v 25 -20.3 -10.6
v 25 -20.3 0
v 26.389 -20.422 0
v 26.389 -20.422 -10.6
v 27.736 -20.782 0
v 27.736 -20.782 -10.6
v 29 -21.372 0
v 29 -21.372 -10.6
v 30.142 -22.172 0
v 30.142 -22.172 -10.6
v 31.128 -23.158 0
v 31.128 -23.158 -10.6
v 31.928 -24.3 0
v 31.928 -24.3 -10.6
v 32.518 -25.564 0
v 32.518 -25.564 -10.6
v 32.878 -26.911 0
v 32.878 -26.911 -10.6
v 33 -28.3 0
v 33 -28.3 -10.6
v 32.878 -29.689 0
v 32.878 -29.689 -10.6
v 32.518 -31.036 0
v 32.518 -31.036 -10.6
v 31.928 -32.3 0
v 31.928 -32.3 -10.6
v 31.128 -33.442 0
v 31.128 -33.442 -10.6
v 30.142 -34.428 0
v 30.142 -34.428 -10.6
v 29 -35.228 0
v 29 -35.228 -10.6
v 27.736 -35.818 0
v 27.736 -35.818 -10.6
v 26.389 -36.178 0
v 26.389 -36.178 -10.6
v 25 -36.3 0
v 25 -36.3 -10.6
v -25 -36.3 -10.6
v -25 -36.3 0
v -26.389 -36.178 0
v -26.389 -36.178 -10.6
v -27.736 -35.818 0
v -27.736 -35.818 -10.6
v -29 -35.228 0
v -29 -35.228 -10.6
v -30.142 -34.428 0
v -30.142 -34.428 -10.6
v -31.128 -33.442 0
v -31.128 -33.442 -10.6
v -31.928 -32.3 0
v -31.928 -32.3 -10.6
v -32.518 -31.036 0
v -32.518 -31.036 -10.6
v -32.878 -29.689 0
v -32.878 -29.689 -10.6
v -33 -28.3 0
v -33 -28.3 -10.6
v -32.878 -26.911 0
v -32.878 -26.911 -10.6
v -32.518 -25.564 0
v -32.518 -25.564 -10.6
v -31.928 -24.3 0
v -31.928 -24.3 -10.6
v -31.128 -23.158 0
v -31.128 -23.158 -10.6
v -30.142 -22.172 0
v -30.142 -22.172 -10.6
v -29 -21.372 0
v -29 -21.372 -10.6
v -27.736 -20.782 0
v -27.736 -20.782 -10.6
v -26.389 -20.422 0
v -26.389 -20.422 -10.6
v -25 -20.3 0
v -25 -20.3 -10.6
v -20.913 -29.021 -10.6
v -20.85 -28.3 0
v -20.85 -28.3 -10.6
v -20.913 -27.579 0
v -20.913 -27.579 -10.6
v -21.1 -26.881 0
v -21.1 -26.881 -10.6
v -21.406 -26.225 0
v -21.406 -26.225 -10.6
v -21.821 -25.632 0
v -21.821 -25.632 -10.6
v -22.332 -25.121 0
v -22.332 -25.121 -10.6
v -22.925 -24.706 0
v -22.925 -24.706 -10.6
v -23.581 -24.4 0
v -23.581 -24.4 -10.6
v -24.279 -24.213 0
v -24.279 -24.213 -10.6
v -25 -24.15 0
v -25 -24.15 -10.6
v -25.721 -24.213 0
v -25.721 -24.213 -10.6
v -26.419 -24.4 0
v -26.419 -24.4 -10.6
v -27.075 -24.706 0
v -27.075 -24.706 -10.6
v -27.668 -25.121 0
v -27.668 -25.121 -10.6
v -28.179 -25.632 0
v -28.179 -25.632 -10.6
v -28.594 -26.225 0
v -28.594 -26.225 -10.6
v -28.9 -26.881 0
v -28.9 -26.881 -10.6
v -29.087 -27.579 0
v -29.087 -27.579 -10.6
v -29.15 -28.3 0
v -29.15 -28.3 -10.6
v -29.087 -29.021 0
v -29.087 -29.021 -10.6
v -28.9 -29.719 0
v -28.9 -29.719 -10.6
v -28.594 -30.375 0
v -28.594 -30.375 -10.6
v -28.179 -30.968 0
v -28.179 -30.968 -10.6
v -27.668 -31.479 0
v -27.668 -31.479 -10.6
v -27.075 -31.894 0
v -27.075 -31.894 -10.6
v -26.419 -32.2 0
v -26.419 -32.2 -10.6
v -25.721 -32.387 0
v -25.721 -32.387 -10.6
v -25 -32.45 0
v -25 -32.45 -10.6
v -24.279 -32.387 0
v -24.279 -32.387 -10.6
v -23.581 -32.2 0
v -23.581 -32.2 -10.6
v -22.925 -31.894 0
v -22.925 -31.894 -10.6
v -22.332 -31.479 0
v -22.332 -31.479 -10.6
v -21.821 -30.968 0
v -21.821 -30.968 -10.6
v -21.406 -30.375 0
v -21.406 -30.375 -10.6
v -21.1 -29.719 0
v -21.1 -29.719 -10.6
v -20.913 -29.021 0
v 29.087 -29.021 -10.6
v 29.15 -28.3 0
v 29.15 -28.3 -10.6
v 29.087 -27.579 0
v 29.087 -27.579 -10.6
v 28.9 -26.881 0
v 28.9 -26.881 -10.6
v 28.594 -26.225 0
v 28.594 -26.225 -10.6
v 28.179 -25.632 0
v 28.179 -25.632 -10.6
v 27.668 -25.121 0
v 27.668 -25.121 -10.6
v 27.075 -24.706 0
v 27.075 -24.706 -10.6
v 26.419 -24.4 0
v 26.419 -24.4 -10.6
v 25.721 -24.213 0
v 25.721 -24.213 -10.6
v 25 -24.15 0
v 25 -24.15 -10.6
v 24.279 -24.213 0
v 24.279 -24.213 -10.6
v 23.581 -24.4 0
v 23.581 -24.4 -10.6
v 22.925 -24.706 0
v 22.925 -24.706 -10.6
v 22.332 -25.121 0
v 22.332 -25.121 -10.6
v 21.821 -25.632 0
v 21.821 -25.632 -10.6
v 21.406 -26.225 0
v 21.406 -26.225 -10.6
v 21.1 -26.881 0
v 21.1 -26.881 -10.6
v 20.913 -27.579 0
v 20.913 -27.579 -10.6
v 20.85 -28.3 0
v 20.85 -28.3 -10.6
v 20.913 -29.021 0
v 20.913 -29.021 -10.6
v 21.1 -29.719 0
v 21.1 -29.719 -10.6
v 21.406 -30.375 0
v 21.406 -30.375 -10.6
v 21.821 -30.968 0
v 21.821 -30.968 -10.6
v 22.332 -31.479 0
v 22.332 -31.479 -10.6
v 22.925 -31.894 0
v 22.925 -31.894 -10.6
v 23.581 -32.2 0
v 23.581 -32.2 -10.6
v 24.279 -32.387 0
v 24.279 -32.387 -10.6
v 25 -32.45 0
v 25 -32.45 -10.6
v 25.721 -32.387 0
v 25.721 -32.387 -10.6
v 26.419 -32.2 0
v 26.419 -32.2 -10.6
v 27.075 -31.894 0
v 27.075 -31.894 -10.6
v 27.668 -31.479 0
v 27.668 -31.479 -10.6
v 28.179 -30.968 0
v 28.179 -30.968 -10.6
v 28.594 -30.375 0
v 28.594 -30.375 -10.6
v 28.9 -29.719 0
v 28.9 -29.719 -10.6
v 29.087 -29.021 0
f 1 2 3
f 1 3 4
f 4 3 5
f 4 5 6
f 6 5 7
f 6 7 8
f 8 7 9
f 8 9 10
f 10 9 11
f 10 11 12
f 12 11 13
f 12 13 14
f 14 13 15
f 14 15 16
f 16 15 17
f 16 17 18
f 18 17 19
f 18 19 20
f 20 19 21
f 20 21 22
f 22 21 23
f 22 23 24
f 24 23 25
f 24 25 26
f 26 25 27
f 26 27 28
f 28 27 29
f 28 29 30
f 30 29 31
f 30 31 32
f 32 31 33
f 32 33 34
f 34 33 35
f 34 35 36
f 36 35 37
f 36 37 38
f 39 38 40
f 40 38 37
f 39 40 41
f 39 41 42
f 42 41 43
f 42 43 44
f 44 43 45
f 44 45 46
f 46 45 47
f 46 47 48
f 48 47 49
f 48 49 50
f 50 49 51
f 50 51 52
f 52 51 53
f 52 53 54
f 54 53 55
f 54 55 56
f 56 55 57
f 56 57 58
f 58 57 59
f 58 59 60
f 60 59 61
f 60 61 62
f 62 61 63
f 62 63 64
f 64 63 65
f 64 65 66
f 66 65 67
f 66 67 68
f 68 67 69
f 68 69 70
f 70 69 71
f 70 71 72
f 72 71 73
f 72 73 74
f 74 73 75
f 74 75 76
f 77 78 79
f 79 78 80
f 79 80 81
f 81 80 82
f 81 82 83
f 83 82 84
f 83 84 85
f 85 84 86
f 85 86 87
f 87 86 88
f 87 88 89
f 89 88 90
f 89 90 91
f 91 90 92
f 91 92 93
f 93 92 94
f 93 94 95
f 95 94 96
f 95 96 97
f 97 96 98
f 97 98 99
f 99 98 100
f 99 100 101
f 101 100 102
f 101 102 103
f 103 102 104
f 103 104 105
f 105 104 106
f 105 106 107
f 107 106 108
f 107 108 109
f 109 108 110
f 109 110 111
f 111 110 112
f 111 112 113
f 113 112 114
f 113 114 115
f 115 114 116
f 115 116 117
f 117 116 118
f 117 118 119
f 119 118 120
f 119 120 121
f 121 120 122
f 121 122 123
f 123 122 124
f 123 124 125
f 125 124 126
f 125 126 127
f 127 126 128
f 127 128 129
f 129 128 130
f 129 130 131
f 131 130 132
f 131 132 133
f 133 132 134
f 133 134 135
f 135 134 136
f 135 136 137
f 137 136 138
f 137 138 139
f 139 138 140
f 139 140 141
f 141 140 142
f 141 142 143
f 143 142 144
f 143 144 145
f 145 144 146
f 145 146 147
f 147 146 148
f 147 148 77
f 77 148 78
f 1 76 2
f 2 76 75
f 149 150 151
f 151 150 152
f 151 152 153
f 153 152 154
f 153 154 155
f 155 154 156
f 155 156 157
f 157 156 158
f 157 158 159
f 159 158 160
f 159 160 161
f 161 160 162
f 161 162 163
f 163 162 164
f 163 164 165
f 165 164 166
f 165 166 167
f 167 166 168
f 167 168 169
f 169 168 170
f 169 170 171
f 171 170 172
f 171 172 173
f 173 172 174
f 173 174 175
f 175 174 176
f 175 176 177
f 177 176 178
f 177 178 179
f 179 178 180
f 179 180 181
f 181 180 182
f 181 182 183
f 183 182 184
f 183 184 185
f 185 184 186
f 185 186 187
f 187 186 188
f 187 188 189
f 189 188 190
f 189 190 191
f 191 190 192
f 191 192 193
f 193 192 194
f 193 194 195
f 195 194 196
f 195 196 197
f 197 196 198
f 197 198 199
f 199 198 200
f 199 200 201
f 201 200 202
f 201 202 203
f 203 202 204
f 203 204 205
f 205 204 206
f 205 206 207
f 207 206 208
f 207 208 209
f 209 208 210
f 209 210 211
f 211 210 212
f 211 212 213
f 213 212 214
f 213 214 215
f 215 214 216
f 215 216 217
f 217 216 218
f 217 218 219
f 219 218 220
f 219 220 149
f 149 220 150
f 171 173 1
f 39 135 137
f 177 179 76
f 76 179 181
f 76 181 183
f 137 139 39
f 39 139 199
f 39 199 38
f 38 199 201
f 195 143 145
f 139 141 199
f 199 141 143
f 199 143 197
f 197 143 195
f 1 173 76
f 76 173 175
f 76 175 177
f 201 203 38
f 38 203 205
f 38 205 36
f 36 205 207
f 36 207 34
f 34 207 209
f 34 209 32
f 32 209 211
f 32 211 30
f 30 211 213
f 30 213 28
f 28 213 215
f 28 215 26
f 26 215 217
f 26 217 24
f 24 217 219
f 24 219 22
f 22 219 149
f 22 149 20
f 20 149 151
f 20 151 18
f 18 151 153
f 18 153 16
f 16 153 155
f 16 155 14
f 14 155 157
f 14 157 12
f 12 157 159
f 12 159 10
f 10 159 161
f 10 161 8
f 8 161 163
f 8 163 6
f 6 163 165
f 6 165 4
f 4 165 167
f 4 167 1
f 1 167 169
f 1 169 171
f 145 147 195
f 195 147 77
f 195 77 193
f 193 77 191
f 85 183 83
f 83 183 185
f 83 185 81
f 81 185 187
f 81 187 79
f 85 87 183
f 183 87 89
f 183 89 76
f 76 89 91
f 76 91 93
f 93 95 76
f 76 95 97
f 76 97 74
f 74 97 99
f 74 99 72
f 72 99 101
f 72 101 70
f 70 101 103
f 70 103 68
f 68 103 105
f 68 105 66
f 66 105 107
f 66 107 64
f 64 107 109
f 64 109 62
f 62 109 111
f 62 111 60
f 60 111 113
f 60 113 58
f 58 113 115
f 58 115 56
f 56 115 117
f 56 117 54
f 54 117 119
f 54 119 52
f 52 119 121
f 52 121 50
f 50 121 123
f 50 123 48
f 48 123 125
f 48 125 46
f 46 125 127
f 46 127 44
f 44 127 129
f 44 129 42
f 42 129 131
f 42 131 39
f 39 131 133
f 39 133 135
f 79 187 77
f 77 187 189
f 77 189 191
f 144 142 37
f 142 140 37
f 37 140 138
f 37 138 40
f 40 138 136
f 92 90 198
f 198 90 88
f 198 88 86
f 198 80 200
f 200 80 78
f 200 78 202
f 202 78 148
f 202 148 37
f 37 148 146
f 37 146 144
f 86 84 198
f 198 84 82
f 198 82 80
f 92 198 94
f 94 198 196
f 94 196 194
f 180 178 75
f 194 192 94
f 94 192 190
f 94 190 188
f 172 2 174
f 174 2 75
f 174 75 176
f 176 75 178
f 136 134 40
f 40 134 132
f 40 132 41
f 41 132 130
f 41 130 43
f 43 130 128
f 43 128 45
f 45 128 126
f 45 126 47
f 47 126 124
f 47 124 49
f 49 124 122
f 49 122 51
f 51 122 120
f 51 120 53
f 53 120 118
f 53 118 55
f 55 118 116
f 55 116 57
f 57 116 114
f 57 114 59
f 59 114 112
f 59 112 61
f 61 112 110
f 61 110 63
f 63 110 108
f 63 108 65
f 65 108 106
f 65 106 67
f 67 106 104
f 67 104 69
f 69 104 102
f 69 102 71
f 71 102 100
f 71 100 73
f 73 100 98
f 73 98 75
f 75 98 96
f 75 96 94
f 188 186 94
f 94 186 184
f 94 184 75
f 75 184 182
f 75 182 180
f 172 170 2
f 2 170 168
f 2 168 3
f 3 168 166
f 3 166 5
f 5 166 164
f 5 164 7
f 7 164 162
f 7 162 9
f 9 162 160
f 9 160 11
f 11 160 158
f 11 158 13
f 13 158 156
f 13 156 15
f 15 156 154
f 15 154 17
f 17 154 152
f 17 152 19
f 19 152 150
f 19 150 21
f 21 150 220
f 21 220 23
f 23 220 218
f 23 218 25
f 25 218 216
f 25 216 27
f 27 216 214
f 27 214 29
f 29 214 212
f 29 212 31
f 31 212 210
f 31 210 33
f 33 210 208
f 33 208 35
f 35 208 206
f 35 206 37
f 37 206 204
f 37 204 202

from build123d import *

# Parameters (mm, degrees)
SKETCH1_R           = 4.15
BOSS_EXTRUDE2_DEPTH = 10.6


with BuildPart() as part:
    # Sketch1 → Boss-Extrude2 (new body)
    with BuildSketch(Plane.XY):
        with BuildLine():
            Line((-25, -36.3), (25, -36.3))
            ThreePointArc((25, -36.3), (32.292866569, -31.588479467), (30.995610492, -23.003524301))
            ThreePointArc((30.995610492, -23.003524301), (28.288479467, -21.007133431), (25, -20.3))
            Line((25, -20.3), (-25, -20.3))
            ThreePointArc((-25, -20.3), (-28.288479467, -21.007133431), (-30.995610492, -23.003524301))
            ThreePointArc((-30.995610492, -23.003524301), (-32.292866569, -31.588479467), (-25, -36.3))
        make_face()
        with Locations((-25, -28.3)):
            Circle(SKETCH1_R, mode=Mode.SUBTRACT)
        with Locations((25, -28.3)):
            Circle(SKETCH1_R, mode=Mode.SUBTRACT)
    extrude(amount=-BOSS_EXTRUDE2_DEPTH)


solid = part.part
